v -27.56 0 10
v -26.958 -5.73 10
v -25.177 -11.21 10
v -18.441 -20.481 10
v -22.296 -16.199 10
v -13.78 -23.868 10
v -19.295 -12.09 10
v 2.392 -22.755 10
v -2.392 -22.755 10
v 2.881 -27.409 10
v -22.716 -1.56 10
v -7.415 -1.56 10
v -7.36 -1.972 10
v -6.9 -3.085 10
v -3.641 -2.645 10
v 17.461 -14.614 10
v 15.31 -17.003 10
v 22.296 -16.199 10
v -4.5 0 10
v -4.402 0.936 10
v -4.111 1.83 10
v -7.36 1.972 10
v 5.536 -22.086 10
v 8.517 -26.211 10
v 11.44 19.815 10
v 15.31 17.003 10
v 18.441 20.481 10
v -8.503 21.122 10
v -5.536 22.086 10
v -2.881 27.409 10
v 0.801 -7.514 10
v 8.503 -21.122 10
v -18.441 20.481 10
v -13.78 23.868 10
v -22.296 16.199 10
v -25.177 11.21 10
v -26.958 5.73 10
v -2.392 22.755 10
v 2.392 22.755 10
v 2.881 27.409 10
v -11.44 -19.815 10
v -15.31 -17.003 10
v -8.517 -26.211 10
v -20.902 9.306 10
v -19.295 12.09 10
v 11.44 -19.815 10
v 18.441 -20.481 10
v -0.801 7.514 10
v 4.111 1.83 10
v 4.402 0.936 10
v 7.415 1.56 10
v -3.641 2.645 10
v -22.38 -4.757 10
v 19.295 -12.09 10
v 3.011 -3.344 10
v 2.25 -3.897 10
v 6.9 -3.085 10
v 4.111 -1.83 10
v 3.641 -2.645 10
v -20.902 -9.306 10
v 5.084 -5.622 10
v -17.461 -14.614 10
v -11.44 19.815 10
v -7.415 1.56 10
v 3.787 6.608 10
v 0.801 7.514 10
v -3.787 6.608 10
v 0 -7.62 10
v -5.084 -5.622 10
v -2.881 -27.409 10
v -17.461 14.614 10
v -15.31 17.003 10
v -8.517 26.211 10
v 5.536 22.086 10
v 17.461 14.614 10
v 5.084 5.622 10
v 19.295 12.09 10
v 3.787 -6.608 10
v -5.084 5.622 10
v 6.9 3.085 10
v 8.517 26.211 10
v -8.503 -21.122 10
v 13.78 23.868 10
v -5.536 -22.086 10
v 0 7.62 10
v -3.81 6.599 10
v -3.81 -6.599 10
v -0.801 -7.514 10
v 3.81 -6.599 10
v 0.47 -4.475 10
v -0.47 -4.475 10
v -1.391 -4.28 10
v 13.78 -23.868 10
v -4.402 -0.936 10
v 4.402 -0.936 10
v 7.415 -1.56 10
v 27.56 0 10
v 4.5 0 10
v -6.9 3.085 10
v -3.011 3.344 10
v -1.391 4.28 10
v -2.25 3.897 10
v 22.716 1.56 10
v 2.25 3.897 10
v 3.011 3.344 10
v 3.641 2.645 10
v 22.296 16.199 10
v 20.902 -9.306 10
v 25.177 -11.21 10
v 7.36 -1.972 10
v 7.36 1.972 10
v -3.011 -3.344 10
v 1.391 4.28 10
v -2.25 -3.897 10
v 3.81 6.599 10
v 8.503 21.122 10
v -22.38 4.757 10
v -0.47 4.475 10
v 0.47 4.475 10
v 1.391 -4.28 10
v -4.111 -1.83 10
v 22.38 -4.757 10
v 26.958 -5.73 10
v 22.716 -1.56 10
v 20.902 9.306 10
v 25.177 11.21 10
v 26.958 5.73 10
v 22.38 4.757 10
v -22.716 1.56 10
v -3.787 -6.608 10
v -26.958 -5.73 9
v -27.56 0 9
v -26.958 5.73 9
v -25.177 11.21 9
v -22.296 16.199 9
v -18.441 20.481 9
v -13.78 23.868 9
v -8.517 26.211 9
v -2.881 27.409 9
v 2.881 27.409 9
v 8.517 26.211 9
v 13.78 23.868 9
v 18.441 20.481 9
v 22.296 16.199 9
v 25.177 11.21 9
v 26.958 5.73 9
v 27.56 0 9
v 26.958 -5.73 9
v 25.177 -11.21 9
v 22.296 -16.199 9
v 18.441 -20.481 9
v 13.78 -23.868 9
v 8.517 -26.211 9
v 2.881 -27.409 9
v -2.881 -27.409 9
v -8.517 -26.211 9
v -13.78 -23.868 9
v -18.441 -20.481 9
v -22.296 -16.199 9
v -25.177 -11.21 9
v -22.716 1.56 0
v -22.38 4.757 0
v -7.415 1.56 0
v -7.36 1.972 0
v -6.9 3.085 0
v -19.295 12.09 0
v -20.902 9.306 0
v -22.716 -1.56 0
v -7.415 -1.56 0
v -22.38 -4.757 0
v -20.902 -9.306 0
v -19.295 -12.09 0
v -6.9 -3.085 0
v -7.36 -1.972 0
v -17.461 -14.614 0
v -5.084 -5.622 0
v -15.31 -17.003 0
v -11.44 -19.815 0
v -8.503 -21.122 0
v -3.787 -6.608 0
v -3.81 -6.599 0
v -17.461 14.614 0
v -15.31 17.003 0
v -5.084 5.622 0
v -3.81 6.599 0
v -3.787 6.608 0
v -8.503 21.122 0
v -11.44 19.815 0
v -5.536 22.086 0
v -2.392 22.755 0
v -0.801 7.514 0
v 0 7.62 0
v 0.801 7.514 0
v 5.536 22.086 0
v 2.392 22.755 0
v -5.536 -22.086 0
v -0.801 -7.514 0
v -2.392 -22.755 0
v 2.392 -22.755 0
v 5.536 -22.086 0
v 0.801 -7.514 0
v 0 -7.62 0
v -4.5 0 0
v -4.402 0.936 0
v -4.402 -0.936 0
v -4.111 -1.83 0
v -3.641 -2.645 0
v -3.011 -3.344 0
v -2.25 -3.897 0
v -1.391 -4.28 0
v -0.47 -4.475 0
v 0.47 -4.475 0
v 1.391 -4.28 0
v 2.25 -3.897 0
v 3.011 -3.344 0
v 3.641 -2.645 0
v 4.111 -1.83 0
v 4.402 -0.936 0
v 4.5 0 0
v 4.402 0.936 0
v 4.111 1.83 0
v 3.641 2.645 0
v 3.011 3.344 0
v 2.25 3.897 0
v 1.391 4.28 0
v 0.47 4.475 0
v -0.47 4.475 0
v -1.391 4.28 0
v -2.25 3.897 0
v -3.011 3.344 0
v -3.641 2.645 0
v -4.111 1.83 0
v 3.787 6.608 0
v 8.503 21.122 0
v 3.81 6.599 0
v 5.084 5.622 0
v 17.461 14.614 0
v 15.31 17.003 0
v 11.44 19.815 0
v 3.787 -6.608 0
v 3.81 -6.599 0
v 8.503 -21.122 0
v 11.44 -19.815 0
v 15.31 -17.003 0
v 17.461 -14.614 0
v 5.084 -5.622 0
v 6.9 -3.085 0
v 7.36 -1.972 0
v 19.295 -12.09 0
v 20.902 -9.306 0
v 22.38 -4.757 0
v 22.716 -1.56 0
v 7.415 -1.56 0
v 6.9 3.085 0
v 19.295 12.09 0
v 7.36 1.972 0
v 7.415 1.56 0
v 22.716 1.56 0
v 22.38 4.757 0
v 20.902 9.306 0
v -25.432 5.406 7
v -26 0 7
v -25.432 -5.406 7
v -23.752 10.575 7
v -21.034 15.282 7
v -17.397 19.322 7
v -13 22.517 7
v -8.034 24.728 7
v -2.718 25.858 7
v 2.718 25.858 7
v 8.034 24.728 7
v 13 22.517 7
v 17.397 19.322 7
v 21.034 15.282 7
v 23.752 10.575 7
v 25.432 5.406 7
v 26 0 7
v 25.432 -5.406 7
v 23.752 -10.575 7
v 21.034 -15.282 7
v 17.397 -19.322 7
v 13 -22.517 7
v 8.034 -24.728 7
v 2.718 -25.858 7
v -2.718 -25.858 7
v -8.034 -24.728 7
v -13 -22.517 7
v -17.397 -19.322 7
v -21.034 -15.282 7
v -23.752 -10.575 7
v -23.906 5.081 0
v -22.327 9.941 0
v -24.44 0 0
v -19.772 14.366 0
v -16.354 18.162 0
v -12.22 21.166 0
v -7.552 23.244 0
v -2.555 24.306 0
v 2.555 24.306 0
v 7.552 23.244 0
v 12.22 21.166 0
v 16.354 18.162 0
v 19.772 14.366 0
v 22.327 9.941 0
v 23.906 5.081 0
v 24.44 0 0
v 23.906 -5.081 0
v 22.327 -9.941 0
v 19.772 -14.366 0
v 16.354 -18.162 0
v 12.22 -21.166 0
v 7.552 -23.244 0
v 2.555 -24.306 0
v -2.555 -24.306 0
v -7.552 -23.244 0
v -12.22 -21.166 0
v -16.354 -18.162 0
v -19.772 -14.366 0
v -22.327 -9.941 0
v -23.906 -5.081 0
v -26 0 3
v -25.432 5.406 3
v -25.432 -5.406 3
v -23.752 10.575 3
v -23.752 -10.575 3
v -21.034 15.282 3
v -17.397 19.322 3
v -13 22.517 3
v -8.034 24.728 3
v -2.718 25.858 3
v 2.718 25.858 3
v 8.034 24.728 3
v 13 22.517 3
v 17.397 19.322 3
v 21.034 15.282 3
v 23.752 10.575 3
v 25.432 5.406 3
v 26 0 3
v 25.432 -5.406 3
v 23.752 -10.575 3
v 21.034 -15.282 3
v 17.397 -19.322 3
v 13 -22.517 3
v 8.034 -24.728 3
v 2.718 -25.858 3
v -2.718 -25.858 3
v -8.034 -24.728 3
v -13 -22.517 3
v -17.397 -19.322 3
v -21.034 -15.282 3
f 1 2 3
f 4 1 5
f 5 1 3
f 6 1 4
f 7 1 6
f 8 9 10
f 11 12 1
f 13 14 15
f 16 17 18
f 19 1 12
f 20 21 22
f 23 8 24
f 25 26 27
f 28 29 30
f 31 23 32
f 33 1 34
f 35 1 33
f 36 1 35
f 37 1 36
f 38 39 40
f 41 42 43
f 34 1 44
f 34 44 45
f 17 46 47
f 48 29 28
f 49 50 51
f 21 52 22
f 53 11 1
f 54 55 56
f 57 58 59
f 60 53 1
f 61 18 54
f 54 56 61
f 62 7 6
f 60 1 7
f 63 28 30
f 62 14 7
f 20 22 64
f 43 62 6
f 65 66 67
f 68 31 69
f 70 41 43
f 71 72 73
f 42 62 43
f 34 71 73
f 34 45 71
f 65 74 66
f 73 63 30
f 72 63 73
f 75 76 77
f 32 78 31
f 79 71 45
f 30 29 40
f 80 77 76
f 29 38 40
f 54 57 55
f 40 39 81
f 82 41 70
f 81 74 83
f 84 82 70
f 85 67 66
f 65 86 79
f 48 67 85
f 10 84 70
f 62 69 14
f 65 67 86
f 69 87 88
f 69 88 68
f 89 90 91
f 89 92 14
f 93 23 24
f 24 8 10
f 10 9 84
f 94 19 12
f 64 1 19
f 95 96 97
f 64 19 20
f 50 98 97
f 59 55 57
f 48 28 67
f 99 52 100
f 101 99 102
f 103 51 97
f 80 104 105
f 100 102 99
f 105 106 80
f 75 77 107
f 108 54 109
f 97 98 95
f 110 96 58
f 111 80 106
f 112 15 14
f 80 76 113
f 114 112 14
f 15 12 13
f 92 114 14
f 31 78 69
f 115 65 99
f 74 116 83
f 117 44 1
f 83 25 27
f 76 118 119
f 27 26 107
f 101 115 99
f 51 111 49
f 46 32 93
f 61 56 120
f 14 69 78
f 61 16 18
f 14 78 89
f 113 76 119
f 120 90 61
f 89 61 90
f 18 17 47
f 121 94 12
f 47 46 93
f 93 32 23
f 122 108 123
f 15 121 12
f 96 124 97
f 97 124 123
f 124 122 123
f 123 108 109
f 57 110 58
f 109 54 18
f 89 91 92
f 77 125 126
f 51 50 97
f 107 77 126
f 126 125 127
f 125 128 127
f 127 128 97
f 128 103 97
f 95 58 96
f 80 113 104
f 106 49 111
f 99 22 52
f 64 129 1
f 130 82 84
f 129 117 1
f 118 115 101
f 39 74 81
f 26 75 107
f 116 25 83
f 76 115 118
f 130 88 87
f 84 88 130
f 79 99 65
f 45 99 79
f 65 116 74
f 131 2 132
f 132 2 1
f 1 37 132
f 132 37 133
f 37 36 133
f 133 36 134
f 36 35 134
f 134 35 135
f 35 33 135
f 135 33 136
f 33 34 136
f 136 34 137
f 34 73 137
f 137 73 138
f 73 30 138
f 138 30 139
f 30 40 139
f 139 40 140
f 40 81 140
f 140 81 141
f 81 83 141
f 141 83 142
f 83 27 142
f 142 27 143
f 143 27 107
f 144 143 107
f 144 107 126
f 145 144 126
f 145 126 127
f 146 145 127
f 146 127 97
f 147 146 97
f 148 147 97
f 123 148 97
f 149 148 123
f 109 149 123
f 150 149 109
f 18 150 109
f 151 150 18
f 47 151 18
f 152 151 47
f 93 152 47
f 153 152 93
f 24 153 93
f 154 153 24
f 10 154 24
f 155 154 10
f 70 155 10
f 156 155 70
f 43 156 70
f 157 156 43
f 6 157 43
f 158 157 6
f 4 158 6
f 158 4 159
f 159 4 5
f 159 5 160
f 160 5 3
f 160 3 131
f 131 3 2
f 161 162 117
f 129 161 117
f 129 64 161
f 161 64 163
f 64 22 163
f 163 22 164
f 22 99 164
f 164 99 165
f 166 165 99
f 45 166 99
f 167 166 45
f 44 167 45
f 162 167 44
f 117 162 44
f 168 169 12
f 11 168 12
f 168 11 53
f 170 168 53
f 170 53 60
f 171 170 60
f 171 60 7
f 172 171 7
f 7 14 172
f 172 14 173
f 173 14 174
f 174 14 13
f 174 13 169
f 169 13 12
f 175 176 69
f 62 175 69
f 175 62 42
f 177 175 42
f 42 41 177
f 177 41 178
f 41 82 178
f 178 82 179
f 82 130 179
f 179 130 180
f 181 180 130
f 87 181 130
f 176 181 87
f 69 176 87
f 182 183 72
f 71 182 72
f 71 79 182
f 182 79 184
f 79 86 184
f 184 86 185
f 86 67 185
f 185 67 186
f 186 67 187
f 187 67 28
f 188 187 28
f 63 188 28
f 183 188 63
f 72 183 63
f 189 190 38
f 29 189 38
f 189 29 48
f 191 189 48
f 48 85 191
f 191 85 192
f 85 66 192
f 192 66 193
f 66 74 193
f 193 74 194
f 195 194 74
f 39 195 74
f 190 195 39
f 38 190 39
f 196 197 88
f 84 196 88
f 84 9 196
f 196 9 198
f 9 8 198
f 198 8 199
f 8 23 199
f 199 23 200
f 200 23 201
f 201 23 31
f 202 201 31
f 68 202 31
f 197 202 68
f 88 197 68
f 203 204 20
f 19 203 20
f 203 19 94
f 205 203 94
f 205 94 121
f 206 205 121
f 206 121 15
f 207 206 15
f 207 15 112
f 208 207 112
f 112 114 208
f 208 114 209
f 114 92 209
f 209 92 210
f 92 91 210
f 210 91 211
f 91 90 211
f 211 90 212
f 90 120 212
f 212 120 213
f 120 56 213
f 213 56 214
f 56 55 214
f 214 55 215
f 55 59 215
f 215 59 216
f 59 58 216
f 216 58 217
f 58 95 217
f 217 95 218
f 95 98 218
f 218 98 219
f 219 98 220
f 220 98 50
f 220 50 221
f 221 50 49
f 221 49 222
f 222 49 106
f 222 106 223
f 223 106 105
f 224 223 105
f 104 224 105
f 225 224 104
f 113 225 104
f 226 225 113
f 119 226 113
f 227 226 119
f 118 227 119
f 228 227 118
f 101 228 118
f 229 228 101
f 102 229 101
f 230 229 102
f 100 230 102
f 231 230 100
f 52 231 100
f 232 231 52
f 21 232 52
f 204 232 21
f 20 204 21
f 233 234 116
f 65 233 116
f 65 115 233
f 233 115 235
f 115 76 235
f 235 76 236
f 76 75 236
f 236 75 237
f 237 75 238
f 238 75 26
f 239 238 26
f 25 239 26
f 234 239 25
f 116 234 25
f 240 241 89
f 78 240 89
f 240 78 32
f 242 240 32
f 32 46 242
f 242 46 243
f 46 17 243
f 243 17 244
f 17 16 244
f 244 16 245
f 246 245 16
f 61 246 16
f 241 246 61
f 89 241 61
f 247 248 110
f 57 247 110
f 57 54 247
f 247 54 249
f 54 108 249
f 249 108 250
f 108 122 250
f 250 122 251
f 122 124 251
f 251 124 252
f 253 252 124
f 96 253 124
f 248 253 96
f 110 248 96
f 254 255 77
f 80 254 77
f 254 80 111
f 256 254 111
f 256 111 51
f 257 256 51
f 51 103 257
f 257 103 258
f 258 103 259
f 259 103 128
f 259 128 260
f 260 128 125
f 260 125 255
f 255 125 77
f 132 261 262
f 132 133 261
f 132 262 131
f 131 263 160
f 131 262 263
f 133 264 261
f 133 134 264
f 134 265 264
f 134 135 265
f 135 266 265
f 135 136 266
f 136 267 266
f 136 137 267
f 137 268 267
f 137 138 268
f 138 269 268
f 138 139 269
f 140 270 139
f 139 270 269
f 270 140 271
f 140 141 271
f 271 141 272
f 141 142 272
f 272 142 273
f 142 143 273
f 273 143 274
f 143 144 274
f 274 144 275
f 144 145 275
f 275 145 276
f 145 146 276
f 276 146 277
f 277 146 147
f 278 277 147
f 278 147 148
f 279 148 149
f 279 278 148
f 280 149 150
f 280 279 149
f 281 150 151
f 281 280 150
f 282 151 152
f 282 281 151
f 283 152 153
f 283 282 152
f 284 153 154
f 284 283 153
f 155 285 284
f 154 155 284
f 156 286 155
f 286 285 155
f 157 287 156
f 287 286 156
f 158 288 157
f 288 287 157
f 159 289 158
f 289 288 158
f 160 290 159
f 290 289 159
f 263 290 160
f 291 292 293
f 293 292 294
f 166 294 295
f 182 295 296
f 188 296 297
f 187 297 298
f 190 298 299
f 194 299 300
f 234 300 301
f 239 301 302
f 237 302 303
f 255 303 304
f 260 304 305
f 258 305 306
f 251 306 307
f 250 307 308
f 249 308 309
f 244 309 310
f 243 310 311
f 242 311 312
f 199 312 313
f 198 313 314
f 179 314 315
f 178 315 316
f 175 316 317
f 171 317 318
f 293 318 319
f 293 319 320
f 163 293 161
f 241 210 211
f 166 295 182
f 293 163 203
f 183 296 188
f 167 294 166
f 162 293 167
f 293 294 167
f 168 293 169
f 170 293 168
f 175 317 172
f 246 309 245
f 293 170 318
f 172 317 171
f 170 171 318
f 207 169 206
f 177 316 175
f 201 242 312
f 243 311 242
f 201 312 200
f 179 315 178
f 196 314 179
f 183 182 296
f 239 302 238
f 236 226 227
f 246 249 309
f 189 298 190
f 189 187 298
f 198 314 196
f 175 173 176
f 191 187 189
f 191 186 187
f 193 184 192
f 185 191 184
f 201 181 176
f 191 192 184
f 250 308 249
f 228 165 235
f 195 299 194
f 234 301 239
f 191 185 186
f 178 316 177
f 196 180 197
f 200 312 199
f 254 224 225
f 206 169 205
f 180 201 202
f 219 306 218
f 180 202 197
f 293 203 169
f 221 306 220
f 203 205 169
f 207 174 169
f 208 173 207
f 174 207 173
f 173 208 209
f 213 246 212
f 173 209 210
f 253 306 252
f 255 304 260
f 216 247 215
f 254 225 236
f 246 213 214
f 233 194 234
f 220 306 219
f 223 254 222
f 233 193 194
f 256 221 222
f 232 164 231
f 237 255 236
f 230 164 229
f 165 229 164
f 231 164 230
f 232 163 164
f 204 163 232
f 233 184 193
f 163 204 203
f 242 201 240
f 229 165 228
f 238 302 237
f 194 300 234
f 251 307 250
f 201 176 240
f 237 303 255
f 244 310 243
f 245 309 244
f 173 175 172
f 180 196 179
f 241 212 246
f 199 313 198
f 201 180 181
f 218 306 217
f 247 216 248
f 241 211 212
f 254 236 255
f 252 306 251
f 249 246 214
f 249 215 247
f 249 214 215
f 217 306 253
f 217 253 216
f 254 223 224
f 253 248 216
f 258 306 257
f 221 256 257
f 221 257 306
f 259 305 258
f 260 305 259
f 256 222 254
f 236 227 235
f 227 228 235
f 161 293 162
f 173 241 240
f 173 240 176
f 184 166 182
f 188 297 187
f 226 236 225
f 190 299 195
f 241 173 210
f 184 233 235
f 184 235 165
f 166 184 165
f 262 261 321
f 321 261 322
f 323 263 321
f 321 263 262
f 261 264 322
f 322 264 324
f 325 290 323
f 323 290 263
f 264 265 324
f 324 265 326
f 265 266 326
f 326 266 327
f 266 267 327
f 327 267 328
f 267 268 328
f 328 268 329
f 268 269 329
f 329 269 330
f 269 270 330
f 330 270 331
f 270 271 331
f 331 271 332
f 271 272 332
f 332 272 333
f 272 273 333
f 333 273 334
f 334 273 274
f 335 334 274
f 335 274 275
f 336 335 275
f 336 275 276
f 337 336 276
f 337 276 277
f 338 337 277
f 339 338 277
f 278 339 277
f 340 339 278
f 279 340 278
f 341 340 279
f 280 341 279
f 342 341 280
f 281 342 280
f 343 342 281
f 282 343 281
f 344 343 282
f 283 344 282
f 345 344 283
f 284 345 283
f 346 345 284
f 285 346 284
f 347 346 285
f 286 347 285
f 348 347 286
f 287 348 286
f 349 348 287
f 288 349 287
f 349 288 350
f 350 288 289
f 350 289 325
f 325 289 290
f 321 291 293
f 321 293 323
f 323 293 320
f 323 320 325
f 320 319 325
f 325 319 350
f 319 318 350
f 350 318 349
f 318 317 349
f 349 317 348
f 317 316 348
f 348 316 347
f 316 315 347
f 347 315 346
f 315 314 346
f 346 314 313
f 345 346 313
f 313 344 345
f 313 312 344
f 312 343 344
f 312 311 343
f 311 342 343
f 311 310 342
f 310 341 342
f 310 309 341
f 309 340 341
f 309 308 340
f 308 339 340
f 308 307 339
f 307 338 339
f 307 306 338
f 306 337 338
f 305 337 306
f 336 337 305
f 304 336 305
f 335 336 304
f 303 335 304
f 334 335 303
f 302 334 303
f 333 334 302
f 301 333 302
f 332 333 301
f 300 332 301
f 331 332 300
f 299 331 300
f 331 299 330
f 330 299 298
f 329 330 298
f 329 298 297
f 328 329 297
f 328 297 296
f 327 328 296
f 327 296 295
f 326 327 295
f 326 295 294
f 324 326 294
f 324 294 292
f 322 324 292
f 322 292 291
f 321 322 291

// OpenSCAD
// PLASTIBOT MENDEL
// Spool Bushing
// Added settings for 1Kg Ultimachine spool.
// Plastibot <support@plastibot.com>
// Derived from: 

// Parametric Bushing
// by Generic
// http://www.thingiverse.com/thing:8697




module bushing(height, radius, hole_r, border,recess,num_support) {
	translate([0,0,height])
	mirror([0,0,1])
	difference() {
		union() {
			// Outer rings
			difference() {
				union() {
					cylinder(r=radius+border,h=1);
					translate([0,0,1]) {
						cylinder(h=2,r1=radius+border,r2=radius);
					}
					translate([0,0,3]) {
						cylinder(r=radius,h=height-6);
					}
					translate([0,0,height-3]) {
						cylinder(h=3,r1=radius,r2=radius-border);
					}
				}
				translate([0,0,-1]) {
					cylinder(r=radius-(border*2),h=height+border);
				}
			}
			// shafts
			for ( i=[0:num_support-1]) {
				rotate(a=[0,0,i*180/num_support]) {
					translate([-radius+border+0.4,-border,0]) {
						cube(size=[(radius-border)*2-0.6,border*2,height]);
					}
				}
			}
			// Central ring
			cylinder(r=hole_r+border*2,h=height);
		}
		translate([0,0,-1]) {
			// Central hole
			cylinder(r=hole_r,h=height+2,$fs=0.1);
			// Recess
			cylinder(r=radius-2*border, h=recess);
		}
	}
}


// Bushing BfB
//bushing(16, 75/2, 4.5, 1.56,5,3);

// Bushing orbitech
//bushing(16, 26.2, 4.5, 1.56,0,3);

// Bushing 51mm (ultimachine 1Kg)
bushing(10, 26, 4.5, 1.56,0,5);
